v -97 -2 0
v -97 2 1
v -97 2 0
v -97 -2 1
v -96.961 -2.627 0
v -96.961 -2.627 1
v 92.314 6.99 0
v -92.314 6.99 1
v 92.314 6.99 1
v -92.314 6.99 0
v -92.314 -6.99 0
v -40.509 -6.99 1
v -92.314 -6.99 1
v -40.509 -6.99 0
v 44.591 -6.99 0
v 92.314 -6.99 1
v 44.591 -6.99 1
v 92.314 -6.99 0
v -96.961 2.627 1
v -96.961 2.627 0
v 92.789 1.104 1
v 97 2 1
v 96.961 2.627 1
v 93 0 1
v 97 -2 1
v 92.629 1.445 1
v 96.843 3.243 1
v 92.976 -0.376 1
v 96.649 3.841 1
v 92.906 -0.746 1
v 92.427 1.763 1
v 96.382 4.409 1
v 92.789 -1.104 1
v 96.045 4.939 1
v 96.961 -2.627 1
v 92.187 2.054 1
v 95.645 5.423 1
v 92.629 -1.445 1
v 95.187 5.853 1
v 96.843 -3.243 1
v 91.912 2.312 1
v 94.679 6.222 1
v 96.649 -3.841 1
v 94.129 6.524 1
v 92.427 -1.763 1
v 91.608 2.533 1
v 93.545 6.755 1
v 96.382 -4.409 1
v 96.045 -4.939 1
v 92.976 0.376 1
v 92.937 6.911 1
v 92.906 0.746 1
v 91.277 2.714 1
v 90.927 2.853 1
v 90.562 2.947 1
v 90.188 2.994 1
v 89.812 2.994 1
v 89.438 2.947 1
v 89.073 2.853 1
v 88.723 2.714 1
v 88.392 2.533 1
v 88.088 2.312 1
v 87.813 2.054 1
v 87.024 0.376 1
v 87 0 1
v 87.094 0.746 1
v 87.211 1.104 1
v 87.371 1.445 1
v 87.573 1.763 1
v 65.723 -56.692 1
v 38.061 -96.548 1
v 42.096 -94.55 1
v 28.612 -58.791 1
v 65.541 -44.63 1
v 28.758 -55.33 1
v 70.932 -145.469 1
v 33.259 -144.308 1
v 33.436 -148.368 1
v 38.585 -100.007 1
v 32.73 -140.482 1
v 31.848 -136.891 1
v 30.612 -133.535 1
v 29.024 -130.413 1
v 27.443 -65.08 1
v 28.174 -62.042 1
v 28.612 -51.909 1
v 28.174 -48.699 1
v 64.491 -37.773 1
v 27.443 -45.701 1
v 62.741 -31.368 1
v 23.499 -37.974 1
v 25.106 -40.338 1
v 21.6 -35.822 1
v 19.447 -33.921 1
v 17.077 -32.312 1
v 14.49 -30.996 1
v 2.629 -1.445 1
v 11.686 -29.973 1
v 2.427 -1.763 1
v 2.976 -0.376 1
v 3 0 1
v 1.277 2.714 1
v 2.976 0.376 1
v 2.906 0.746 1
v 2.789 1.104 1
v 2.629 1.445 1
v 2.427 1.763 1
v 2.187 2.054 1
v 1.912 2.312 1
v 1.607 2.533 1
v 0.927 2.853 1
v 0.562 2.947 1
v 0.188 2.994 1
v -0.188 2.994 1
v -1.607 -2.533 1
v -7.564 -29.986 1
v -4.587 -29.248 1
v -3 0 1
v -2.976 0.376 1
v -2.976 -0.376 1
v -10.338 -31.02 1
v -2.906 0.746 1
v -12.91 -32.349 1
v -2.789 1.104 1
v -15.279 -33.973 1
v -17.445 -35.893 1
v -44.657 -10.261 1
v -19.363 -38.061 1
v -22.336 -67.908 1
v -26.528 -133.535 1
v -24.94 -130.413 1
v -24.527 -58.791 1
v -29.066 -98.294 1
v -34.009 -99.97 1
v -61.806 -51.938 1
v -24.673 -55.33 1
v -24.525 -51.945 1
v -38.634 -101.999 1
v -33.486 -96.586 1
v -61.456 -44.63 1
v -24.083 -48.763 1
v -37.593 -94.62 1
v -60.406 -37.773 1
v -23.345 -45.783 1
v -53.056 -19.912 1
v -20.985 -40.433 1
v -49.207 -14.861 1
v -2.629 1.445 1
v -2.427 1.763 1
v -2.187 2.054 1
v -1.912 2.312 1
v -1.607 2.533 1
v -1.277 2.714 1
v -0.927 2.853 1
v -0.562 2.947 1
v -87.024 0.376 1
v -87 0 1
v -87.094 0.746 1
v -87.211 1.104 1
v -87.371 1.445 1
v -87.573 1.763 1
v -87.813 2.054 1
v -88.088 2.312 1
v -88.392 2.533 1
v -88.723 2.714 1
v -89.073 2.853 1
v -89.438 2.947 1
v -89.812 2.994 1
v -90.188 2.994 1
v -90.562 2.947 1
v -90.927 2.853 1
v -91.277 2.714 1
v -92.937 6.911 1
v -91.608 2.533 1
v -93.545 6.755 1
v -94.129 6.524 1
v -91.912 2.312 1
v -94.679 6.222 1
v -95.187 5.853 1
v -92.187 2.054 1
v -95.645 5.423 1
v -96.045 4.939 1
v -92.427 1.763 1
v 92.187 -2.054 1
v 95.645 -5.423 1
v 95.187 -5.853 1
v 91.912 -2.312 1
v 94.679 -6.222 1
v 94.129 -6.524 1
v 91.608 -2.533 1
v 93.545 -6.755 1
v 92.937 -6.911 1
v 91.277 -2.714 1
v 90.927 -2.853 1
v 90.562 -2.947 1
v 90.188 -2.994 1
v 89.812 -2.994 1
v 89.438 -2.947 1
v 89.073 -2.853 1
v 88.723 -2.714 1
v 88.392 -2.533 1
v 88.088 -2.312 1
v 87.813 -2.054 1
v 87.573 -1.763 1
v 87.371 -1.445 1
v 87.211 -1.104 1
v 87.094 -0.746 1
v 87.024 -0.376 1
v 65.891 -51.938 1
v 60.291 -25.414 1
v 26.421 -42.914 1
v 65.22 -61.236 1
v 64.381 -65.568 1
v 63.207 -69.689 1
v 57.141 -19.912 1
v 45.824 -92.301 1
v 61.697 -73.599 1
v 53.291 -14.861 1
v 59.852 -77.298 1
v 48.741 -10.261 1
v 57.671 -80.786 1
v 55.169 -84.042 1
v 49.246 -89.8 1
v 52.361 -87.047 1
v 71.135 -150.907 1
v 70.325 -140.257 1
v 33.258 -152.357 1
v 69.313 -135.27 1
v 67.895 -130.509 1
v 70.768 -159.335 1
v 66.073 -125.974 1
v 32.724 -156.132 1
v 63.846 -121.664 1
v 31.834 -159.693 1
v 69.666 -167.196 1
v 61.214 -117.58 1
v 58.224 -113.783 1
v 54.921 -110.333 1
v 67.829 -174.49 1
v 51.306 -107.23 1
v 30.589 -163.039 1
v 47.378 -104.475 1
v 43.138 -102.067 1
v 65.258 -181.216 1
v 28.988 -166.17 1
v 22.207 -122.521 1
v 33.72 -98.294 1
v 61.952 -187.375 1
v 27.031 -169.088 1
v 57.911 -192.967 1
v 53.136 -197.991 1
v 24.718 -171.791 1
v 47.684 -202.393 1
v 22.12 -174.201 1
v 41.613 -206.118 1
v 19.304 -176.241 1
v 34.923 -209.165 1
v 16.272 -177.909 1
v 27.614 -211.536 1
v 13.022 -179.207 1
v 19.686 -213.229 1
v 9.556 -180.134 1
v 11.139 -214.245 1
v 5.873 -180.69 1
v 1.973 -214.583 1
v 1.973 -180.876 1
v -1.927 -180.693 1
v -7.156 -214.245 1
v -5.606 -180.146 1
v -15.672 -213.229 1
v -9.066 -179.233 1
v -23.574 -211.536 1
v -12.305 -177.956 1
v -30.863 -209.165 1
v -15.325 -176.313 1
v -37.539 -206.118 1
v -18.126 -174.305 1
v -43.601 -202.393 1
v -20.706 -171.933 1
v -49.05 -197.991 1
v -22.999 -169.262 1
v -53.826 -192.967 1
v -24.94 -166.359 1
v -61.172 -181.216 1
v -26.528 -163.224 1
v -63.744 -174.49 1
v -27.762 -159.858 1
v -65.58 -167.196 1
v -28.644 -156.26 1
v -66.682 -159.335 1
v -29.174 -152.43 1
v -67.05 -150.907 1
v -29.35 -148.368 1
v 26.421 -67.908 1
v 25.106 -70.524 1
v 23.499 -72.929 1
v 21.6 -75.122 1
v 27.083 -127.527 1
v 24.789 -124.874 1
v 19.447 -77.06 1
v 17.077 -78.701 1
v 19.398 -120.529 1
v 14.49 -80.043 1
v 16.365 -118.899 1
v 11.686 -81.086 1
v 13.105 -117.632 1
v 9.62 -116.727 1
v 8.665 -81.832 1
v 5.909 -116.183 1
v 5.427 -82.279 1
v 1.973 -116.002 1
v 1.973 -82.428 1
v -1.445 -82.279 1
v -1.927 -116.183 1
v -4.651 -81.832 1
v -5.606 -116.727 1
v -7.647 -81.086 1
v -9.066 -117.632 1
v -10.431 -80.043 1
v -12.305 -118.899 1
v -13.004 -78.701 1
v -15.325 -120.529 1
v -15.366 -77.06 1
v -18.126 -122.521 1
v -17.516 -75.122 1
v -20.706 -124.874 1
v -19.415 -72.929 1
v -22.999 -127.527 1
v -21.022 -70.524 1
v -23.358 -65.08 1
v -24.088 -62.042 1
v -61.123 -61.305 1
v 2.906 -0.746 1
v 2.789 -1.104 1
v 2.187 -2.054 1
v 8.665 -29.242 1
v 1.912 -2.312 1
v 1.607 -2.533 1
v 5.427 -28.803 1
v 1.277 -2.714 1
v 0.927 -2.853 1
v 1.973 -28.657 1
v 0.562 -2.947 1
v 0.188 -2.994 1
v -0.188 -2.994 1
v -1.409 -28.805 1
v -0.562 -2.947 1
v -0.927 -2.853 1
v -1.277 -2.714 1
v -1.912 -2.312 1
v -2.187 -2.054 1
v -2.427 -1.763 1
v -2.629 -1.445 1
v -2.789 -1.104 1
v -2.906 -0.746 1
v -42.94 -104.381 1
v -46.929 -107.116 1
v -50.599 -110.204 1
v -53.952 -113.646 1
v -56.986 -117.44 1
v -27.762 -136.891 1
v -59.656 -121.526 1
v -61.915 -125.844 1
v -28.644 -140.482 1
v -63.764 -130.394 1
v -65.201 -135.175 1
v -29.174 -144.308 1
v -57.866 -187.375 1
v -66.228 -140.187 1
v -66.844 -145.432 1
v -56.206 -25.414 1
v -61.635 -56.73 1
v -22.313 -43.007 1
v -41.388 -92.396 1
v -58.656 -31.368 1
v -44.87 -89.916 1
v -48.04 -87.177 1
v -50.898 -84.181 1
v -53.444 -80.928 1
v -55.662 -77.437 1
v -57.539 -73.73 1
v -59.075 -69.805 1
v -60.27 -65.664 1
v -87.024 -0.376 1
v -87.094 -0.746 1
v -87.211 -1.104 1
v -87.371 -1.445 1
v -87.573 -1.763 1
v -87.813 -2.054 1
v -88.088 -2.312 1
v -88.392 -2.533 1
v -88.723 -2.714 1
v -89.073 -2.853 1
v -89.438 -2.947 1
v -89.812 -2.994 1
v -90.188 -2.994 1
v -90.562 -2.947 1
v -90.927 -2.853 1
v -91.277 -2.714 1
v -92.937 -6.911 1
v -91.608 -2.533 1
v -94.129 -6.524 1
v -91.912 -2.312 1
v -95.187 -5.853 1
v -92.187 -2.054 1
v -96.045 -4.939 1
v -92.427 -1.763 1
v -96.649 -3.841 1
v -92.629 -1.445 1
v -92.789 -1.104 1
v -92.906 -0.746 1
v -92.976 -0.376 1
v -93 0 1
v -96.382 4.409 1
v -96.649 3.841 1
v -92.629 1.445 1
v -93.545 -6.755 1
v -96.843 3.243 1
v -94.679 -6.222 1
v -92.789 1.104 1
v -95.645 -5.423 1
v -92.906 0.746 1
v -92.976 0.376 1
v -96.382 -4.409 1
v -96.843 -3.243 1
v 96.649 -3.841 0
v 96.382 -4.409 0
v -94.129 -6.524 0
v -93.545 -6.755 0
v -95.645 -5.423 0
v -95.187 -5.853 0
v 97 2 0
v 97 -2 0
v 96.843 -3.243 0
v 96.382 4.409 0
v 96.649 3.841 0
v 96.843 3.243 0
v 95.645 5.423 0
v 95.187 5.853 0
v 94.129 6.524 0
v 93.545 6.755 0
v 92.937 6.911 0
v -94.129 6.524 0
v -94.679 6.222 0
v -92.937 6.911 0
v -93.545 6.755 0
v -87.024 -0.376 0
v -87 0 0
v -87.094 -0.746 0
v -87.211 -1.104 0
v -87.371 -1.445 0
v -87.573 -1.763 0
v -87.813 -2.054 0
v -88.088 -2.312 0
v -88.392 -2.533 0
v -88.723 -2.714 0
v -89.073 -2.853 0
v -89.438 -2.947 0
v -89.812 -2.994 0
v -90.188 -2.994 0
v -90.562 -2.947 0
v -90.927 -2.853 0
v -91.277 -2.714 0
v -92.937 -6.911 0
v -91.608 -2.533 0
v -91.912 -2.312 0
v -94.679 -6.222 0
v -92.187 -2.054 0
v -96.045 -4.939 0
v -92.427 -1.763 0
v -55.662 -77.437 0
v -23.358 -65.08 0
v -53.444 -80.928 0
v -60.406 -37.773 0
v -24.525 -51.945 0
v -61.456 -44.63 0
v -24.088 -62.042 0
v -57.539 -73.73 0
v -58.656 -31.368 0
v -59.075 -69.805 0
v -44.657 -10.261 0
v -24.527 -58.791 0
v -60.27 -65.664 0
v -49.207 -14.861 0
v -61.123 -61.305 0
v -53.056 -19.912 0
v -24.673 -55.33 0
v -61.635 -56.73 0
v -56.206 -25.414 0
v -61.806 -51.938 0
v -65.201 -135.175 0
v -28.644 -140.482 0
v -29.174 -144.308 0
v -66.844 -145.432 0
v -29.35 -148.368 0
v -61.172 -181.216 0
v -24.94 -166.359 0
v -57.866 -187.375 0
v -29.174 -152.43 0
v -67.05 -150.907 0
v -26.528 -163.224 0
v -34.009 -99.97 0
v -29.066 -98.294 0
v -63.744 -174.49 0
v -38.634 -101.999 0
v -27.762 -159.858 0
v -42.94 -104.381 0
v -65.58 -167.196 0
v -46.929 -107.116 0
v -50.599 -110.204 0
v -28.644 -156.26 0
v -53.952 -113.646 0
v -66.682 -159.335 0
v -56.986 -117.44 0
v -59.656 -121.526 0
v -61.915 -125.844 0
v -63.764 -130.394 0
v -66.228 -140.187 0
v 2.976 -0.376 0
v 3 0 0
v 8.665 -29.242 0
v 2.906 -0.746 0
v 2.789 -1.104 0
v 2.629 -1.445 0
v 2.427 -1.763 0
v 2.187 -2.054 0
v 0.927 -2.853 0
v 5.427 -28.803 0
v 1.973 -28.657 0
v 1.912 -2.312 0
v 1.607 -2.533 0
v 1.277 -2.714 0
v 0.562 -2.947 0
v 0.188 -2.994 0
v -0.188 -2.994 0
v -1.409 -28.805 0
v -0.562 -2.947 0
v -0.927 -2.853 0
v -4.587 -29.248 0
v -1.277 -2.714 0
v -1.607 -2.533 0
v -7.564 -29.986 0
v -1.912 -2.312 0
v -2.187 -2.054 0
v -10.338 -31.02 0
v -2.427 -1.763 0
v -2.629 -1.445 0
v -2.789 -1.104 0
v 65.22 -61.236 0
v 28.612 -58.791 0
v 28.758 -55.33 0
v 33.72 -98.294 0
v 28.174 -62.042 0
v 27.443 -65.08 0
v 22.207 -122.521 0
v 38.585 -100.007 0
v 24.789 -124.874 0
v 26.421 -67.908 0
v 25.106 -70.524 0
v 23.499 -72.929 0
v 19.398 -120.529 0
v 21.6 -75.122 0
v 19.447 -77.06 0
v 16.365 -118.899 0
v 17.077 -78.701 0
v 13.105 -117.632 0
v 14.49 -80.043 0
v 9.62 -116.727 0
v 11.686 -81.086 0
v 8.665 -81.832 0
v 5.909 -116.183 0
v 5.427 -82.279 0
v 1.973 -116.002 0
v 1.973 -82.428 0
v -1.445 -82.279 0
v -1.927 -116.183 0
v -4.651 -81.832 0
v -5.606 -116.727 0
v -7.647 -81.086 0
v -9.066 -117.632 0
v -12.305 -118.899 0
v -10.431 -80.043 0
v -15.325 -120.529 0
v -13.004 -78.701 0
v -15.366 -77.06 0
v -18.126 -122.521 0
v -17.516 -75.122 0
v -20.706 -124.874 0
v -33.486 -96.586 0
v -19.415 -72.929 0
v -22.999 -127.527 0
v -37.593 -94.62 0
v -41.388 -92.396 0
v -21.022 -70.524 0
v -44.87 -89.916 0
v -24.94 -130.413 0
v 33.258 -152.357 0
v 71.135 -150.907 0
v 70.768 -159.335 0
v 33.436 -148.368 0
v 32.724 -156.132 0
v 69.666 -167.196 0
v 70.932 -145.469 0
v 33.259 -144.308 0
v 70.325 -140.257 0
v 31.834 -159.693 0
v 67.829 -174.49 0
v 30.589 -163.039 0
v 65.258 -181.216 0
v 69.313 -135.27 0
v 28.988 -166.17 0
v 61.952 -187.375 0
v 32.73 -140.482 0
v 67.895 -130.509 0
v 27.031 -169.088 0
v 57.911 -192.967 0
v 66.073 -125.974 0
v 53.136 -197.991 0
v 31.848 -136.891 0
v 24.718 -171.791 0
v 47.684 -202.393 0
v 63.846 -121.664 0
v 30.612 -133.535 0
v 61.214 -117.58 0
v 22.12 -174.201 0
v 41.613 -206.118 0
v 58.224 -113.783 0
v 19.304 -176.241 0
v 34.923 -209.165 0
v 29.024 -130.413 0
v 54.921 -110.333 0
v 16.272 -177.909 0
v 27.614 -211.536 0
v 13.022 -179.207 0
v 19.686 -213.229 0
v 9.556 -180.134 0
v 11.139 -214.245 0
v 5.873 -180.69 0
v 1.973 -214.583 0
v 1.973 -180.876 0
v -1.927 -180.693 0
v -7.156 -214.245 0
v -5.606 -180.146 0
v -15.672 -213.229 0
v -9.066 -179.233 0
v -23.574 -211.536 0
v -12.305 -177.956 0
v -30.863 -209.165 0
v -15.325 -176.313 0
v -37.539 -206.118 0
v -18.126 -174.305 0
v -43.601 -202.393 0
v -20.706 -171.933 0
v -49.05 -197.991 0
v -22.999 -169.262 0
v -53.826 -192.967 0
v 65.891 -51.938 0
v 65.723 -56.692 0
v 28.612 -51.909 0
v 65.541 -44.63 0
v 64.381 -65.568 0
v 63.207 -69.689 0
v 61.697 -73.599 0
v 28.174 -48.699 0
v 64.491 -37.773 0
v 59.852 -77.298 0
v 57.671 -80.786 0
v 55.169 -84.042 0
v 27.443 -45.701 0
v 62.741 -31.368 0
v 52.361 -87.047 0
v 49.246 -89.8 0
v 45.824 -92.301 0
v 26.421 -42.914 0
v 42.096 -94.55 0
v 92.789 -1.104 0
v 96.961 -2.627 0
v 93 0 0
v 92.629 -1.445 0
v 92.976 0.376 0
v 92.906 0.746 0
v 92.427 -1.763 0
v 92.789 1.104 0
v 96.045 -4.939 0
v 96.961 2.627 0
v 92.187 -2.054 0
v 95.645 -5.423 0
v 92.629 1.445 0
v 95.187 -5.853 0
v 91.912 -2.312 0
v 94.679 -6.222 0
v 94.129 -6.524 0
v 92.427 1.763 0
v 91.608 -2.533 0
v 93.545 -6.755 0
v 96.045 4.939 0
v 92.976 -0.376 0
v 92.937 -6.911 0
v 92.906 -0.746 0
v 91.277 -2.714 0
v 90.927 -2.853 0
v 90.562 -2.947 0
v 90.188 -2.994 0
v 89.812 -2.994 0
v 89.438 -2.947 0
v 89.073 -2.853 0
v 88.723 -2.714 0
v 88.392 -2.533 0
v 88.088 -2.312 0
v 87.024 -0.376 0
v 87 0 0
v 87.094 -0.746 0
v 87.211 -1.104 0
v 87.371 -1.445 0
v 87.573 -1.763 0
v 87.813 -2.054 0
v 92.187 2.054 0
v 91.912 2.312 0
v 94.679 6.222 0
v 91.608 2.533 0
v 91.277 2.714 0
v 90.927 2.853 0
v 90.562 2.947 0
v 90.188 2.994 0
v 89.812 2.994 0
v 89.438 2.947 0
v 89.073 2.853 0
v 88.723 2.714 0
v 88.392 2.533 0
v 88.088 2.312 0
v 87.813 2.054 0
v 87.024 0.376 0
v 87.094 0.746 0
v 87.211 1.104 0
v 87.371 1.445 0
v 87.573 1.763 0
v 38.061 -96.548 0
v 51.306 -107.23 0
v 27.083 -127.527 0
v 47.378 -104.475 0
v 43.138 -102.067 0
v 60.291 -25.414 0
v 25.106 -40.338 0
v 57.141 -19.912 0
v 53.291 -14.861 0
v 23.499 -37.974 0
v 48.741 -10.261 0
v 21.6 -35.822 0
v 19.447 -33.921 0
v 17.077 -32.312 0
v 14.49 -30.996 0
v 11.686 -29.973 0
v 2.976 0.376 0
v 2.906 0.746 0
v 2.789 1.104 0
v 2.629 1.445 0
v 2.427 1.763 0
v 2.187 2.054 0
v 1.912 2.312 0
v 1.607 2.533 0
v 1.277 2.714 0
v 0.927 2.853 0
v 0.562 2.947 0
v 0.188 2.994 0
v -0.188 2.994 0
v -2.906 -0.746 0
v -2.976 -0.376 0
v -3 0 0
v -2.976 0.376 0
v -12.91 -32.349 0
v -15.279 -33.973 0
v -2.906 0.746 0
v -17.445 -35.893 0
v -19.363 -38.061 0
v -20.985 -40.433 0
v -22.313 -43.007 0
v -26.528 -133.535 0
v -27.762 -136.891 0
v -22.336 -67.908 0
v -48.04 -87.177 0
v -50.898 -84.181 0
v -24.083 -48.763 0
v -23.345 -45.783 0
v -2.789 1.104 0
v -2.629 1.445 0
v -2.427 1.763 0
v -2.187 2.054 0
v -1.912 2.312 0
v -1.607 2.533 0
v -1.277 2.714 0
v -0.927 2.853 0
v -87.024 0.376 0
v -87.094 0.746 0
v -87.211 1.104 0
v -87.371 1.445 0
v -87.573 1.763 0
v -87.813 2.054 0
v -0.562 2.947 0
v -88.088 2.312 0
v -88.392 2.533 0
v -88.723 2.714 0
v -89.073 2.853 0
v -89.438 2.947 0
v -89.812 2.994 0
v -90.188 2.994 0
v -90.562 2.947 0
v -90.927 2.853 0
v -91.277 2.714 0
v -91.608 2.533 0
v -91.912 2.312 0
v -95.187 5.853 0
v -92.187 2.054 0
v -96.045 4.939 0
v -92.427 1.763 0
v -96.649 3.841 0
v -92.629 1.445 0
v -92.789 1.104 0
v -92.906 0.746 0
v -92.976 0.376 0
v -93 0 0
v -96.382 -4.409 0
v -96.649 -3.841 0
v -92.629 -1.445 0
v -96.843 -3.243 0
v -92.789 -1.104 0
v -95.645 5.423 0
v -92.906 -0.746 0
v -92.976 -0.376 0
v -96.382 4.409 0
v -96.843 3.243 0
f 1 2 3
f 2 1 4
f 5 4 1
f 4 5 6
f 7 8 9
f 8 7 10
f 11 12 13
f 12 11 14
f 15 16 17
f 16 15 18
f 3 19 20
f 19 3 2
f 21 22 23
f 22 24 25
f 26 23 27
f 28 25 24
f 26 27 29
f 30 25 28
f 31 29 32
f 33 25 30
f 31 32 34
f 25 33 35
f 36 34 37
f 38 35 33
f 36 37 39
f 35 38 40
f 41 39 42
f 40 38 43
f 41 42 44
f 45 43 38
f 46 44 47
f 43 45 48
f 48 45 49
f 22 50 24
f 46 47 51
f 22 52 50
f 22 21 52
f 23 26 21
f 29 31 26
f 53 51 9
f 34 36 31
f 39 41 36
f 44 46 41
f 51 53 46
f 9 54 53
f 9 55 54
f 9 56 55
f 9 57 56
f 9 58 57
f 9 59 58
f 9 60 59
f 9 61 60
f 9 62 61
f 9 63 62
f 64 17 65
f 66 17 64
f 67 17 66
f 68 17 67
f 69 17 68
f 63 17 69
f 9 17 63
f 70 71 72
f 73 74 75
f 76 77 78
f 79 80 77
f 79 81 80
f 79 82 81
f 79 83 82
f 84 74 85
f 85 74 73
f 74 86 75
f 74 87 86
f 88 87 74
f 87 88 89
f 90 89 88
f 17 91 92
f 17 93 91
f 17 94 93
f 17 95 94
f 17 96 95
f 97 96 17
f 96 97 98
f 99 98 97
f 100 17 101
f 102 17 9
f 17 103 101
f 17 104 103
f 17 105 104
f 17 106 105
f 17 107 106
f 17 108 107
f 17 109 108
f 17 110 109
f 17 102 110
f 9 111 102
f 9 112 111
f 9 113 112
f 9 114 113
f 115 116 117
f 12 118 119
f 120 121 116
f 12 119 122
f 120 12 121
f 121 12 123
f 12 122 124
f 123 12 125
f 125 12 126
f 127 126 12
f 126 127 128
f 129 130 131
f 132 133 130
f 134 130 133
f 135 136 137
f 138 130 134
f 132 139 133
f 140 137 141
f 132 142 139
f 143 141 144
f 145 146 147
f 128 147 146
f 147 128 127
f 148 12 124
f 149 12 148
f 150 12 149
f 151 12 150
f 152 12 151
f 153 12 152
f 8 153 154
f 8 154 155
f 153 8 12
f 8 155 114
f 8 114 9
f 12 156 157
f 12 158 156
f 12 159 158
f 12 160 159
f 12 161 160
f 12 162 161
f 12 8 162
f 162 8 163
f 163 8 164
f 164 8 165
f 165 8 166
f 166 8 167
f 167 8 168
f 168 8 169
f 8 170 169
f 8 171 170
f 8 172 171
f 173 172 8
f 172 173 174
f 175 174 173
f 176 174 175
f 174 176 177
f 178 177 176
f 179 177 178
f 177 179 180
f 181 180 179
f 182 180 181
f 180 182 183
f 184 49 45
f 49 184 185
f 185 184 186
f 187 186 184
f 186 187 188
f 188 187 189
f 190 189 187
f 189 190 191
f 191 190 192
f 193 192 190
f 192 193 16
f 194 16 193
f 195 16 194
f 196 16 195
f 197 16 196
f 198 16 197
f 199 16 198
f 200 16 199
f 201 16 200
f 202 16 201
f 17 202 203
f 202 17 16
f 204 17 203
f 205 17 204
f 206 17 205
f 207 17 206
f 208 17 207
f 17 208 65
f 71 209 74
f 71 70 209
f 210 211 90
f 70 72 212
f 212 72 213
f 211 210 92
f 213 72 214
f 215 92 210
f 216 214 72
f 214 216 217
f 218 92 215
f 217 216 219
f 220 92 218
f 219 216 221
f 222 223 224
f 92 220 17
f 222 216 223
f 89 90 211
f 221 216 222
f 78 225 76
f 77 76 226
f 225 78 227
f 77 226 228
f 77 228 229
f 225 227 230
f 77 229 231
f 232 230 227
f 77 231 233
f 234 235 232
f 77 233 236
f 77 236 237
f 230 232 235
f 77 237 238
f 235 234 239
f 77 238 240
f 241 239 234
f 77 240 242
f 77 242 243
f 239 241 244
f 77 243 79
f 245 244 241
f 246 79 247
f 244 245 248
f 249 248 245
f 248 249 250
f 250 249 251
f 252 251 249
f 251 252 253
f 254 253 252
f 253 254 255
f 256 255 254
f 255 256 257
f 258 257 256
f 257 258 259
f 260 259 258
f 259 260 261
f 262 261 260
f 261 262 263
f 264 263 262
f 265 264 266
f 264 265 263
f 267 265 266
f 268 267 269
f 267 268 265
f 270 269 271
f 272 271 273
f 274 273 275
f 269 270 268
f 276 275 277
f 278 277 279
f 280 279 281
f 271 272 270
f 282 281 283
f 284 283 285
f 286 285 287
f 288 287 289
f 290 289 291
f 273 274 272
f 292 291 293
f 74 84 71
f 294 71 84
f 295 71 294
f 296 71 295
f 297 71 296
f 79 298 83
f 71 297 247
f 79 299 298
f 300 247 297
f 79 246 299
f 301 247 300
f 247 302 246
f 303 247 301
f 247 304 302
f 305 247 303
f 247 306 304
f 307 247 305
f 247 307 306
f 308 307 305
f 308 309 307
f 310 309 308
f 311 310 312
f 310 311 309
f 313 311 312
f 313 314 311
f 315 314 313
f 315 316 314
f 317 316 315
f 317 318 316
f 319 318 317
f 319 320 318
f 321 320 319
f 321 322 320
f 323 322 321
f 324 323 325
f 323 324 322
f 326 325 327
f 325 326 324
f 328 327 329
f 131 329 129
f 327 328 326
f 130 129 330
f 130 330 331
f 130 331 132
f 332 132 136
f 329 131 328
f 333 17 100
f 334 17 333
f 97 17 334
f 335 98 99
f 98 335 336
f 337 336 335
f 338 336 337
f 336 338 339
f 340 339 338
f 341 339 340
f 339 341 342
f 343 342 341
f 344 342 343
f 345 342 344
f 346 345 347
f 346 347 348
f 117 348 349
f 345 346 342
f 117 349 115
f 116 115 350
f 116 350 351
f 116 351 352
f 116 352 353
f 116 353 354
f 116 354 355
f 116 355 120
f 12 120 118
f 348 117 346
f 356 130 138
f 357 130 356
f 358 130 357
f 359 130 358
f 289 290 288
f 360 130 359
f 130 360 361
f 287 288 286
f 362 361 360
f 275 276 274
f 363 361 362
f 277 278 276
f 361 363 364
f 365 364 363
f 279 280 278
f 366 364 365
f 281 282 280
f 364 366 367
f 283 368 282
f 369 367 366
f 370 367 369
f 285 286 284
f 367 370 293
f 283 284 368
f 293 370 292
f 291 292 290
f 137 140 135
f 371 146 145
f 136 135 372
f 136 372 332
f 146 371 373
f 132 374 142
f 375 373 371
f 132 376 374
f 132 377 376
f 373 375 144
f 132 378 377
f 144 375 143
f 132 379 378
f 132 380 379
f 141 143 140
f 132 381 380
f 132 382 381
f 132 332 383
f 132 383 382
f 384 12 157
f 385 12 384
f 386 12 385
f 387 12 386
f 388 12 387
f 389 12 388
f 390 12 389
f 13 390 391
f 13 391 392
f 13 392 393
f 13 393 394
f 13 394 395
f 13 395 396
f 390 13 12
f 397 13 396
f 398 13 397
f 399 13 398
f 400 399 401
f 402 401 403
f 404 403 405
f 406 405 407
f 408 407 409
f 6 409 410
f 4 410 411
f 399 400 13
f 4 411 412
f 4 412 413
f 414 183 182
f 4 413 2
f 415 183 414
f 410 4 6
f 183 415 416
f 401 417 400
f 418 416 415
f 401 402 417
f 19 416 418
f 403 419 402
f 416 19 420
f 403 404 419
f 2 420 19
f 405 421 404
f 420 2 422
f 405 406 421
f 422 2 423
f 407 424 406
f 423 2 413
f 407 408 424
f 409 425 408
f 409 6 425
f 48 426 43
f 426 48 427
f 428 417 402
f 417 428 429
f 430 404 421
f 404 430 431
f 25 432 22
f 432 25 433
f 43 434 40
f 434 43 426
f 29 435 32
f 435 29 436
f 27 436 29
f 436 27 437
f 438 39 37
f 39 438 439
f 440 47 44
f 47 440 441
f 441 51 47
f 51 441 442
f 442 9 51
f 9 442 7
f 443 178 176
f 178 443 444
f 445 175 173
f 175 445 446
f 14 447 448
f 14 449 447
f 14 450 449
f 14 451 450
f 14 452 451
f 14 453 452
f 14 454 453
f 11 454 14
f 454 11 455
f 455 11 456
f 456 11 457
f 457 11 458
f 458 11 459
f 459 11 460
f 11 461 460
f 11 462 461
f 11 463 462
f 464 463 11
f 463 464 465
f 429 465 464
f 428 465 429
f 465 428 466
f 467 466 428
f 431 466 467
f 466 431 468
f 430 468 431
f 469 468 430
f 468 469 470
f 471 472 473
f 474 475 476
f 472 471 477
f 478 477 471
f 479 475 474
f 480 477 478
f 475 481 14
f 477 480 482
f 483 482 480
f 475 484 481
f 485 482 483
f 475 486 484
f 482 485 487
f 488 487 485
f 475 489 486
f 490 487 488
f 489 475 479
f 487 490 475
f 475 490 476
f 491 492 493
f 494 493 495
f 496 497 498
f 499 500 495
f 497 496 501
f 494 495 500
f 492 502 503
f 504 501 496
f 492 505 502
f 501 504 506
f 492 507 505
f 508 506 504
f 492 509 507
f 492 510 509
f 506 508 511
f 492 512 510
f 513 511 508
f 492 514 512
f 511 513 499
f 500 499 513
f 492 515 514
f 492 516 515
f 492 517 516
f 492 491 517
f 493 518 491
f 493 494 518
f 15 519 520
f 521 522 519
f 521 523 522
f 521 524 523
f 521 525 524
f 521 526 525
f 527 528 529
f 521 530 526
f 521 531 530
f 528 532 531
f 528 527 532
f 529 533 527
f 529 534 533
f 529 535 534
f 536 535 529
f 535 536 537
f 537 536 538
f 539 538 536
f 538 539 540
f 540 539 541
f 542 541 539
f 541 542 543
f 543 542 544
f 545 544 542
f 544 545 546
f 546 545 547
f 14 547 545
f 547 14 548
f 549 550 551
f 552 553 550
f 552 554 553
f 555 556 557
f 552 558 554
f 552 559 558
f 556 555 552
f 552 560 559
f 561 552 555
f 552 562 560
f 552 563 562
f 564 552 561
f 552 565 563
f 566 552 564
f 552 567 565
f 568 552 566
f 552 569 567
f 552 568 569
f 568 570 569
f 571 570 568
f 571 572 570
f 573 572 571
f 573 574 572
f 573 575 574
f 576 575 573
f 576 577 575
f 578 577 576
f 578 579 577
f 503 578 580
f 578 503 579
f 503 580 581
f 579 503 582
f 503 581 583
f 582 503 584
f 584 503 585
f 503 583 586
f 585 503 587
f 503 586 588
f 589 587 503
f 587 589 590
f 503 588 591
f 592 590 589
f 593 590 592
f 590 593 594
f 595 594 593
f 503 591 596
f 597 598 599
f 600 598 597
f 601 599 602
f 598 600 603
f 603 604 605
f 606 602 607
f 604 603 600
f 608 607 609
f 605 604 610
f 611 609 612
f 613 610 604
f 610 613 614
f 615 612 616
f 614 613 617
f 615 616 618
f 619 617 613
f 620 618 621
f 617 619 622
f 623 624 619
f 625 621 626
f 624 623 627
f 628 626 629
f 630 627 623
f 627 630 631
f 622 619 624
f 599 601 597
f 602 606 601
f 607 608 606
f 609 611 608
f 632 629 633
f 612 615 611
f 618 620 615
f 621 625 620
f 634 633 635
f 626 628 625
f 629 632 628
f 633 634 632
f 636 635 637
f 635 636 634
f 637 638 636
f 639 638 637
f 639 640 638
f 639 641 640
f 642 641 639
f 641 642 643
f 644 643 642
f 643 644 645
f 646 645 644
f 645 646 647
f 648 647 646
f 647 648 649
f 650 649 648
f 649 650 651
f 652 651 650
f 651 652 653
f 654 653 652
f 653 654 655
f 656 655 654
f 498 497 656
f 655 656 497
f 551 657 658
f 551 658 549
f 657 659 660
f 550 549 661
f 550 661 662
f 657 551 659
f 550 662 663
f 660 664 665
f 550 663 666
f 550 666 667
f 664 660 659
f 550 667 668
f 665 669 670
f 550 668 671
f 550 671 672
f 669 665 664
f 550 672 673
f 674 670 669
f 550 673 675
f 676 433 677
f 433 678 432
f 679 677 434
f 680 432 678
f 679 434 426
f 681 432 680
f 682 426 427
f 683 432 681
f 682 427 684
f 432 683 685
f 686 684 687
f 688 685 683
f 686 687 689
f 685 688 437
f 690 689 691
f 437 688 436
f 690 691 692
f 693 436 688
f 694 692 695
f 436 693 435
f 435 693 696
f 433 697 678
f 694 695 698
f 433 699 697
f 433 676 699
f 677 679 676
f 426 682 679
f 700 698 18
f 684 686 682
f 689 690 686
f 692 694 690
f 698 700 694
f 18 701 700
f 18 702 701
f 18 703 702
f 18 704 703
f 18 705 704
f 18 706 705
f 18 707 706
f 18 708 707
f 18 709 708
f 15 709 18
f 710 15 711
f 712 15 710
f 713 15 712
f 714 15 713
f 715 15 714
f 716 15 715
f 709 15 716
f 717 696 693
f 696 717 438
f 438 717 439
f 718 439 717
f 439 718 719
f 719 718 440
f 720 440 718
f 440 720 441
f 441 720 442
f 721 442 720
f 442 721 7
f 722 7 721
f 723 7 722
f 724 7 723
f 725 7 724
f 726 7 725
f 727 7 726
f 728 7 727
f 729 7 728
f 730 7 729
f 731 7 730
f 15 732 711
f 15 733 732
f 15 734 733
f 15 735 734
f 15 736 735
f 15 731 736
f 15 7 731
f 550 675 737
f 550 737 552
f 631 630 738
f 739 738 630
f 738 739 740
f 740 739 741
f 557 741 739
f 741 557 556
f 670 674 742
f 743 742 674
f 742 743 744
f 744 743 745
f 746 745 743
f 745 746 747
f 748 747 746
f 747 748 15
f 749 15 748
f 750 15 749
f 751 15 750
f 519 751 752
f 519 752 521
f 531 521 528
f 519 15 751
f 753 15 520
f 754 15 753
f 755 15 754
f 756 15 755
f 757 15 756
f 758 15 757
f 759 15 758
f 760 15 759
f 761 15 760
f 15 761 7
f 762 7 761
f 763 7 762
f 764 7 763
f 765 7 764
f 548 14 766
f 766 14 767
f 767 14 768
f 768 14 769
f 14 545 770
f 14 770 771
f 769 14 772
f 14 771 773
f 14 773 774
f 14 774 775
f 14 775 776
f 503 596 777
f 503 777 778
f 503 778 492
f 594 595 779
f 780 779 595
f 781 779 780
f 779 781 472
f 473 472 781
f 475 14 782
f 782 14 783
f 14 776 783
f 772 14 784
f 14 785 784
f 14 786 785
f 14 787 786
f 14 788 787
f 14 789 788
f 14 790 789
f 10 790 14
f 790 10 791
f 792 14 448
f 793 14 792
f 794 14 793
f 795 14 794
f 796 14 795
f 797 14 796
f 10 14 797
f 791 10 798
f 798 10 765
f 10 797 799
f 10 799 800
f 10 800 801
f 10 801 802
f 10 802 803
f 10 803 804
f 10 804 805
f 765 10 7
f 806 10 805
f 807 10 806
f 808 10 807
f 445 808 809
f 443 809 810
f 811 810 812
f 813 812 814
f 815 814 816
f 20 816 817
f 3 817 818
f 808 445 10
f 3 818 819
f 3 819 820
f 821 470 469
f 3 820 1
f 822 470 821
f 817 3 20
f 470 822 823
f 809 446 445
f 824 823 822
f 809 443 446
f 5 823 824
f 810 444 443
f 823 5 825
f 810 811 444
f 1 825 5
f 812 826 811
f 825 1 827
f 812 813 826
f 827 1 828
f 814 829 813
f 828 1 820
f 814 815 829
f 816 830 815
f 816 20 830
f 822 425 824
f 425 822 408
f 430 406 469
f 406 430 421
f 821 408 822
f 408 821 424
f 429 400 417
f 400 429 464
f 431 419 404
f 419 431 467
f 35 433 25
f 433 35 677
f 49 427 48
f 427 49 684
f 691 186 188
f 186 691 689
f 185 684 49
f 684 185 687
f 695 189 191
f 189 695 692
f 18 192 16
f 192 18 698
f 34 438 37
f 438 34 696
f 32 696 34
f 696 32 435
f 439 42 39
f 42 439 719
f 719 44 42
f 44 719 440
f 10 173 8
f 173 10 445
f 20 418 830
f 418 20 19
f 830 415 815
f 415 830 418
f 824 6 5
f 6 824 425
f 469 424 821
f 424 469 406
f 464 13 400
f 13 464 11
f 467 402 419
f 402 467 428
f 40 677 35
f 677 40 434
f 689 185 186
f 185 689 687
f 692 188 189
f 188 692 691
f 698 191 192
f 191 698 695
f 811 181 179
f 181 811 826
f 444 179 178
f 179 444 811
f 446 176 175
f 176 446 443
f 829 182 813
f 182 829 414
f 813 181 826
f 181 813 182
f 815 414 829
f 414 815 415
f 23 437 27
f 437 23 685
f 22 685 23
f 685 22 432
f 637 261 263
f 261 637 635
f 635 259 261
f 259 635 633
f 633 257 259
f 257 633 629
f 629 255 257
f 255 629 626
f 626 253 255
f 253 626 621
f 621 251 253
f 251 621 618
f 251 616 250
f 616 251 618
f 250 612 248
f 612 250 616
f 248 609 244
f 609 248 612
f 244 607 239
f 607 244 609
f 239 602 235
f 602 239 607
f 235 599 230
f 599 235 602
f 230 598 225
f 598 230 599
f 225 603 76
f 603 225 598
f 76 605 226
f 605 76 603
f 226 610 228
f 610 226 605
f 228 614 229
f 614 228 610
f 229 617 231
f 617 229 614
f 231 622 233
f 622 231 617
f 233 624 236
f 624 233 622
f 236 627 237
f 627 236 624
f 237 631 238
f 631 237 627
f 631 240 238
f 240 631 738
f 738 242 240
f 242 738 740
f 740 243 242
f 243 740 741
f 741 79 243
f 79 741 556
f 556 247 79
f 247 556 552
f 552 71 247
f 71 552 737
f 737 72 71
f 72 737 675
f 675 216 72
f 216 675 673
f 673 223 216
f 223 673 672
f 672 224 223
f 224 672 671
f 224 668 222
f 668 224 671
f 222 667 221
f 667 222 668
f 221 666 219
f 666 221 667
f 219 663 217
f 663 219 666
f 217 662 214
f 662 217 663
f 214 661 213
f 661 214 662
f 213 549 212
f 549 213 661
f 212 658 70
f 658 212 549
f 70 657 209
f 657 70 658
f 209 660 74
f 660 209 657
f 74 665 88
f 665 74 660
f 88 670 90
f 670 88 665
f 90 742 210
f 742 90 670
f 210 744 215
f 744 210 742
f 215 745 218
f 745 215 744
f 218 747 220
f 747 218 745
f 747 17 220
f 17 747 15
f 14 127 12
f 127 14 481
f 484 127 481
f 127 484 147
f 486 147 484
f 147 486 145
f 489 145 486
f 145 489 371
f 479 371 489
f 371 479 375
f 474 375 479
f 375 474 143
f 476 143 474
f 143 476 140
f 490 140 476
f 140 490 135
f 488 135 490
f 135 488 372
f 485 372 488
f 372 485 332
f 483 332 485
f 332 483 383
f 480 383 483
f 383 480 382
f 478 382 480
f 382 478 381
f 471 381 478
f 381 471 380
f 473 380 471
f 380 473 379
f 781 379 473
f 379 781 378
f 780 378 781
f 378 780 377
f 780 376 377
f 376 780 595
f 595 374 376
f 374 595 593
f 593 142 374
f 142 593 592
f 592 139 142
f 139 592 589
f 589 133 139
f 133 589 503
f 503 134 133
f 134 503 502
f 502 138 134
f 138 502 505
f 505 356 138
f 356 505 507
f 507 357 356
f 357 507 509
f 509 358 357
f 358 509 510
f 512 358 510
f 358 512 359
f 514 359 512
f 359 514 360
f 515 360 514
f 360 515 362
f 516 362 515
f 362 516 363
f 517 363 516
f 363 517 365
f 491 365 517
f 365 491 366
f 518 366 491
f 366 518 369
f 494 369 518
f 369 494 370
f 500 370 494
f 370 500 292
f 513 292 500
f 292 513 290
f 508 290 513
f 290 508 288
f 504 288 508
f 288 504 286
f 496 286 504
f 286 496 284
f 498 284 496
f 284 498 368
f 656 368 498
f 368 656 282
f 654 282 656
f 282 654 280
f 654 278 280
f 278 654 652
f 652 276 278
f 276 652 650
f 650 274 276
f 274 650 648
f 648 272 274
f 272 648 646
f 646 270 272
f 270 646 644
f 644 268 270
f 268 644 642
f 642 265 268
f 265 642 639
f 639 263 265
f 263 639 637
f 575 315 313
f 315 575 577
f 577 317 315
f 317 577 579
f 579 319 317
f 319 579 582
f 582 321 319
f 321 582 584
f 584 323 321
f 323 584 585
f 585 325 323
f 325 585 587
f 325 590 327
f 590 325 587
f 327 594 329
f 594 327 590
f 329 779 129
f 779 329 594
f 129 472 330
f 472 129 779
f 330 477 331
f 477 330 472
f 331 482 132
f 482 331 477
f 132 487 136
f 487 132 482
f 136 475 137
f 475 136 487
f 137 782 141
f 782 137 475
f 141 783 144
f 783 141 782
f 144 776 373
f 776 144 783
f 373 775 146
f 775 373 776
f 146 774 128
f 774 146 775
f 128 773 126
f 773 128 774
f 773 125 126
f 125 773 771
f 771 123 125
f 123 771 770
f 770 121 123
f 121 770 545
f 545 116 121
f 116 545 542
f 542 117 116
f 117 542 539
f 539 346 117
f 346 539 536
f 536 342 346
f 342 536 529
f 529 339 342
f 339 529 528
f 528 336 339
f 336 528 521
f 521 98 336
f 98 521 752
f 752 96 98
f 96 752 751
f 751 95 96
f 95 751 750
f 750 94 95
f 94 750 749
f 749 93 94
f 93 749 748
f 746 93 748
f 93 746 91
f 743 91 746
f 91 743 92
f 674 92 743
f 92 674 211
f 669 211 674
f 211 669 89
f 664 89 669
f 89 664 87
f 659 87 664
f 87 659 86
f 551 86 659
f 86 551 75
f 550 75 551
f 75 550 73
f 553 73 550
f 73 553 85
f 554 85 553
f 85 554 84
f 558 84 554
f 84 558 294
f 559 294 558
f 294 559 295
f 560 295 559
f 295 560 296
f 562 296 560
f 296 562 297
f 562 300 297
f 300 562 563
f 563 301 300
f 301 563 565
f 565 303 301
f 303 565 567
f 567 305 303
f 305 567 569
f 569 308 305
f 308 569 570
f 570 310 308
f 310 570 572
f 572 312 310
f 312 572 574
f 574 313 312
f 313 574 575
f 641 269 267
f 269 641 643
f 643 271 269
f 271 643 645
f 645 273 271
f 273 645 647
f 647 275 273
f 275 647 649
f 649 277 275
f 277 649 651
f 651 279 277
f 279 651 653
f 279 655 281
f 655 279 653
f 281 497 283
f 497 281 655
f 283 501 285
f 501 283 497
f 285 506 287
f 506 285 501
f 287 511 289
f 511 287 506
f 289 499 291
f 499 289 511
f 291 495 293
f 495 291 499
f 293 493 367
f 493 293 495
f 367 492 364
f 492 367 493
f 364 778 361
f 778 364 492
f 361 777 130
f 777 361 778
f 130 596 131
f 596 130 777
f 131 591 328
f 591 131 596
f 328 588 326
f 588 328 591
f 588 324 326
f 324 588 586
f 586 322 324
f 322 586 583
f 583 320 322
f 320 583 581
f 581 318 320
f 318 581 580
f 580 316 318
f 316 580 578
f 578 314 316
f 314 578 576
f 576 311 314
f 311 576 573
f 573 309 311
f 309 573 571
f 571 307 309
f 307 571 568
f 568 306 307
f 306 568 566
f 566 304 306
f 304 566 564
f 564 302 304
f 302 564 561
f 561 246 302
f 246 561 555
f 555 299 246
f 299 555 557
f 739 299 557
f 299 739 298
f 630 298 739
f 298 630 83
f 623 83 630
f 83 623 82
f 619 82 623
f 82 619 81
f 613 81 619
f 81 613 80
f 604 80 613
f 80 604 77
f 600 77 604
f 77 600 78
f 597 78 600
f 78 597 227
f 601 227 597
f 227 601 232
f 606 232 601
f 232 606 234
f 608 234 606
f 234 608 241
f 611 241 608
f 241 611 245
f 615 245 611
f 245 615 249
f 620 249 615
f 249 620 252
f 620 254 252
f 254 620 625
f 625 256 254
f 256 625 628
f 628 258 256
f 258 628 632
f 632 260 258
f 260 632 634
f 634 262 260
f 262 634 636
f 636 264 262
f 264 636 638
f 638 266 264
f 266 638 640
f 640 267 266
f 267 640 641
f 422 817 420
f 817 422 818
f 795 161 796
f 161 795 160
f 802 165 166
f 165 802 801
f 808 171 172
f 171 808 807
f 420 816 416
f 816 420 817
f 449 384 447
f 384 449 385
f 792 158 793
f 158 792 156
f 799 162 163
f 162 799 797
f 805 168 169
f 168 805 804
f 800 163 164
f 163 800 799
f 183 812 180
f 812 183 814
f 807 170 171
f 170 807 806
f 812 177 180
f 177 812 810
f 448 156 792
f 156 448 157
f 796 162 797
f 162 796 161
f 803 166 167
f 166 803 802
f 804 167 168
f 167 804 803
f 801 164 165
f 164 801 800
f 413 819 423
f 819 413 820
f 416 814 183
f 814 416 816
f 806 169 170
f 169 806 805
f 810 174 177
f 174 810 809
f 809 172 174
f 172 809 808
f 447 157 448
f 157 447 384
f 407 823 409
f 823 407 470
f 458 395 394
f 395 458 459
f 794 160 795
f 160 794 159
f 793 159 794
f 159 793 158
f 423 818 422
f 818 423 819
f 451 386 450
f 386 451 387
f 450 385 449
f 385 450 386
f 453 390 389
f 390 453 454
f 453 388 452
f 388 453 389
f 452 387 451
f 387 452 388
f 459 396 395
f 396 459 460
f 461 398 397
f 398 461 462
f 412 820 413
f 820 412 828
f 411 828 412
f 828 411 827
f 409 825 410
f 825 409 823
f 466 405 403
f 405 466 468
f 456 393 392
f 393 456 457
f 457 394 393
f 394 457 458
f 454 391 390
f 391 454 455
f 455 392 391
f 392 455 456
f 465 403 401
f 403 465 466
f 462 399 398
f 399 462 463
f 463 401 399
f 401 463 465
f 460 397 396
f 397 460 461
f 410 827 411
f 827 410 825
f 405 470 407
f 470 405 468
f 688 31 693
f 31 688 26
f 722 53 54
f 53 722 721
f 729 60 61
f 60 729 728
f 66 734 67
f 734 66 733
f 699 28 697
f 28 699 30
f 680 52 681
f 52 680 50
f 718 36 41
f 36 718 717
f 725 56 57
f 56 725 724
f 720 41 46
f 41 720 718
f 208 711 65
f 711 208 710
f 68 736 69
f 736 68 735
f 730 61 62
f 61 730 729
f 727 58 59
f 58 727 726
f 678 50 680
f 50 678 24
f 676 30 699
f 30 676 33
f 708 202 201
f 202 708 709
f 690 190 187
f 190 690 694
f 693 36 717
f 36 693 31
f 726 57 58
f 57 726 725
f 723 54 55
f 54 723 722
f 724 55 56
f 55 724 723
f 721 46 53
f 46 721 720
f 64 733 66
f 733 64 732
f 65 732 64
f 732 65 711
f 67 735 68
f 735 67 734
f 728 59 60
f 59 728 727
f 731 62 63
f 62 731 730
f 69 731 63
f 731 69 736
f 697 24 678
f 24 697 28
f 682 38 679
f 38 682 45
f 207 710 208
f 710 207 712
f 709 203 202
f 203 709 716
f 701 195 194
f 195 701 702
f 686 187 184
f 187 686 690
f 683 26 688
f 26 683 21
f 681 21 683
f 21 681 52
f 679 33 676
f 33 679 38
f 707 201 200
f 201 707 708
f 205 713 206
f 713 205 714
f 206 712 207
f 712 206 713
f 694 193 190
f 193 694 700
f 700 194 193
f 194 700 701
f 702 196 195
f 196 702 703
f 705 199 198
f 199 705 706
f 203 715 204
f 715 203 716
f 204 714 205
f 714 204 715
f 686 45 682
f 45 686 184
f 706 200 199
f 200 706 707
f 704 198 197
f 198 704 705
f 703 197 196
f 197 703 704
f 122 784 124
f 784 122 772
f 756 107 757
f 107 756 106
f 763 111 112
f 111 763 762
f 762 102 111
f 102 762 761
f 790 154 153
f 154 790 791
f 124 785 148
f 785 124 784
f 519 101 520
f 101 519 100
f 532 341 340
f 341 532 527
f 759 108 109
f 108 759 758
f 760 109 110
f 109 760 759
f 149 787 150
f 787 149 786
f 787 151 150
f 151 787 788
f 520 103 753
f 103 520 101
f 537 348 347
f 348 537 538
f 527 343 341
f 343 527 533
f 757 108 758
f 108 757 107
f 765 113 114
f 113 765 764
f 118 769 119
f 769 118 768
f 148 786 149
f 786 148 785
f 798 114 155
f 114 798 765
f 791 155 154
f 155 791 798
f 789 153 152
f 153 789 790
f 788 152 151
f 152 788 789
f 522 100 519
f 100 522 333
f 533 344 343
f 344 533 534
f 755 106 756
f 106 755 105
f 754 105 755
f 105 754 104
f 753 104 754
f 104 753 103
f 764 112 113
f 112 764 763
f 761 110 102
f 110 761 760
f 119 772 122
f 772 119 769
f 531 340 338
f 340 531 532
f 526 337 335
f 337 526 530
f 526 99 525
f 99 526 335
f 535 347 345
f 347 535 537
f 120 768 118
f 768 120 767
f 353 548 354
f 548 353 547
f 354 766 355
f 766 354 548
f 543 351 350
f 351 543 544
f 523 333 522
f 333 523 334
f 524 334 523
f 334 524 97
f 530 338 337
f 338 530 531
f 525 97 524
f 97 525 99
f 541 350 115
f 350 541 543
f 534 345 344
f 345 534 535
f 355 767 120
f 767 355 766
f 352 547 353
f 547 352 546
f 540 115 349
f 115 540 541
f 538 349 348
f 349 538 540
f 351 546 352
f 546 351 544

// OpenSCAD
$fn = 50;


difference() {
	union() {
		translate(v = [0, 0, 0]) {
			rotate(a = [0, 0, 0]) {
				hull() {
					translate(v = [-92.0000000000, 2.0000000000, 0]) {
						rotate(a = [0, 0, 0]) {
							translate(v = [0, 0, 0]) {
								rotate(a = [0, 0, 0]) {
									cylinder(h = 1, r = 5);
								}
							}
						}
					}
					translate(v = [92.0000000000, 2.0000000000, 0]) {
						rotate(a = [0, 0, 0]) {
							translate(v = [0, 0, 0]) {
								rotate(a = [0, 0, 0]) {
									cylinder(h = 1, r = 5);
								}
							}
						}
					}
					translate(v = [-92.0000000000, -2.0000000000, 0]) {
						rotate(a = [0, 0, 0]) {
							translate(v = [0, 0, 0]) {
								rotate(a = [0, 0, 0]) {
									cylinder(h = 1, r = 5);
								}
							}
						}
					}
					translate(v = [92.0000000000, -2.0000000000, 0]) {
						rotate(a = [0, 0, 0]) {
							translate(v = [0, 0, 0]) {
								rotate(a = [0, 0, 0]) {
									cylinder(h = 1, r = 5);
								}
							}
						}
					}
				}
			}
		}
		translate(v = [0, 0, 0]) {
			rotate(a = [0, 0, 0]) {
				linear_extrude(height = 1) {
					text(font = "DejaVu Sans Mono:style=Bold", halign = "center", size = 209.0000000000, text = "8", valign = "top");
				}
			}
		}
	}
	union() {
		translate(v = [-90.0000000000, 0.0000000000, -125.0000000000]) {
			rotate(a = [0, 0, 0]) {
				cylinder(h = 250, r = 3.0000000000);
			}
		}
		translate(v = [90.0000000000, 0.0000000000, -125.0000000000]) {
			rotate(a = [0, 0, 0]) {
				cylinder(h = 250, r = 3.0000000000);
			}
		}
		translate(v = [90.0000000000, 0.0000000000, -125.0000000000]) {
			rotate(a = [0, 0, 0]) {
				cylinder(h = 250, r = 3.0000000000);
			}
		}
		translate(v = [0, 0, -125.0000000000]) {
			rotate(a = [0, 0, 0]) {
				cylinder(h = 250, r = 3.0000000000);
			}
		}
	}
}
